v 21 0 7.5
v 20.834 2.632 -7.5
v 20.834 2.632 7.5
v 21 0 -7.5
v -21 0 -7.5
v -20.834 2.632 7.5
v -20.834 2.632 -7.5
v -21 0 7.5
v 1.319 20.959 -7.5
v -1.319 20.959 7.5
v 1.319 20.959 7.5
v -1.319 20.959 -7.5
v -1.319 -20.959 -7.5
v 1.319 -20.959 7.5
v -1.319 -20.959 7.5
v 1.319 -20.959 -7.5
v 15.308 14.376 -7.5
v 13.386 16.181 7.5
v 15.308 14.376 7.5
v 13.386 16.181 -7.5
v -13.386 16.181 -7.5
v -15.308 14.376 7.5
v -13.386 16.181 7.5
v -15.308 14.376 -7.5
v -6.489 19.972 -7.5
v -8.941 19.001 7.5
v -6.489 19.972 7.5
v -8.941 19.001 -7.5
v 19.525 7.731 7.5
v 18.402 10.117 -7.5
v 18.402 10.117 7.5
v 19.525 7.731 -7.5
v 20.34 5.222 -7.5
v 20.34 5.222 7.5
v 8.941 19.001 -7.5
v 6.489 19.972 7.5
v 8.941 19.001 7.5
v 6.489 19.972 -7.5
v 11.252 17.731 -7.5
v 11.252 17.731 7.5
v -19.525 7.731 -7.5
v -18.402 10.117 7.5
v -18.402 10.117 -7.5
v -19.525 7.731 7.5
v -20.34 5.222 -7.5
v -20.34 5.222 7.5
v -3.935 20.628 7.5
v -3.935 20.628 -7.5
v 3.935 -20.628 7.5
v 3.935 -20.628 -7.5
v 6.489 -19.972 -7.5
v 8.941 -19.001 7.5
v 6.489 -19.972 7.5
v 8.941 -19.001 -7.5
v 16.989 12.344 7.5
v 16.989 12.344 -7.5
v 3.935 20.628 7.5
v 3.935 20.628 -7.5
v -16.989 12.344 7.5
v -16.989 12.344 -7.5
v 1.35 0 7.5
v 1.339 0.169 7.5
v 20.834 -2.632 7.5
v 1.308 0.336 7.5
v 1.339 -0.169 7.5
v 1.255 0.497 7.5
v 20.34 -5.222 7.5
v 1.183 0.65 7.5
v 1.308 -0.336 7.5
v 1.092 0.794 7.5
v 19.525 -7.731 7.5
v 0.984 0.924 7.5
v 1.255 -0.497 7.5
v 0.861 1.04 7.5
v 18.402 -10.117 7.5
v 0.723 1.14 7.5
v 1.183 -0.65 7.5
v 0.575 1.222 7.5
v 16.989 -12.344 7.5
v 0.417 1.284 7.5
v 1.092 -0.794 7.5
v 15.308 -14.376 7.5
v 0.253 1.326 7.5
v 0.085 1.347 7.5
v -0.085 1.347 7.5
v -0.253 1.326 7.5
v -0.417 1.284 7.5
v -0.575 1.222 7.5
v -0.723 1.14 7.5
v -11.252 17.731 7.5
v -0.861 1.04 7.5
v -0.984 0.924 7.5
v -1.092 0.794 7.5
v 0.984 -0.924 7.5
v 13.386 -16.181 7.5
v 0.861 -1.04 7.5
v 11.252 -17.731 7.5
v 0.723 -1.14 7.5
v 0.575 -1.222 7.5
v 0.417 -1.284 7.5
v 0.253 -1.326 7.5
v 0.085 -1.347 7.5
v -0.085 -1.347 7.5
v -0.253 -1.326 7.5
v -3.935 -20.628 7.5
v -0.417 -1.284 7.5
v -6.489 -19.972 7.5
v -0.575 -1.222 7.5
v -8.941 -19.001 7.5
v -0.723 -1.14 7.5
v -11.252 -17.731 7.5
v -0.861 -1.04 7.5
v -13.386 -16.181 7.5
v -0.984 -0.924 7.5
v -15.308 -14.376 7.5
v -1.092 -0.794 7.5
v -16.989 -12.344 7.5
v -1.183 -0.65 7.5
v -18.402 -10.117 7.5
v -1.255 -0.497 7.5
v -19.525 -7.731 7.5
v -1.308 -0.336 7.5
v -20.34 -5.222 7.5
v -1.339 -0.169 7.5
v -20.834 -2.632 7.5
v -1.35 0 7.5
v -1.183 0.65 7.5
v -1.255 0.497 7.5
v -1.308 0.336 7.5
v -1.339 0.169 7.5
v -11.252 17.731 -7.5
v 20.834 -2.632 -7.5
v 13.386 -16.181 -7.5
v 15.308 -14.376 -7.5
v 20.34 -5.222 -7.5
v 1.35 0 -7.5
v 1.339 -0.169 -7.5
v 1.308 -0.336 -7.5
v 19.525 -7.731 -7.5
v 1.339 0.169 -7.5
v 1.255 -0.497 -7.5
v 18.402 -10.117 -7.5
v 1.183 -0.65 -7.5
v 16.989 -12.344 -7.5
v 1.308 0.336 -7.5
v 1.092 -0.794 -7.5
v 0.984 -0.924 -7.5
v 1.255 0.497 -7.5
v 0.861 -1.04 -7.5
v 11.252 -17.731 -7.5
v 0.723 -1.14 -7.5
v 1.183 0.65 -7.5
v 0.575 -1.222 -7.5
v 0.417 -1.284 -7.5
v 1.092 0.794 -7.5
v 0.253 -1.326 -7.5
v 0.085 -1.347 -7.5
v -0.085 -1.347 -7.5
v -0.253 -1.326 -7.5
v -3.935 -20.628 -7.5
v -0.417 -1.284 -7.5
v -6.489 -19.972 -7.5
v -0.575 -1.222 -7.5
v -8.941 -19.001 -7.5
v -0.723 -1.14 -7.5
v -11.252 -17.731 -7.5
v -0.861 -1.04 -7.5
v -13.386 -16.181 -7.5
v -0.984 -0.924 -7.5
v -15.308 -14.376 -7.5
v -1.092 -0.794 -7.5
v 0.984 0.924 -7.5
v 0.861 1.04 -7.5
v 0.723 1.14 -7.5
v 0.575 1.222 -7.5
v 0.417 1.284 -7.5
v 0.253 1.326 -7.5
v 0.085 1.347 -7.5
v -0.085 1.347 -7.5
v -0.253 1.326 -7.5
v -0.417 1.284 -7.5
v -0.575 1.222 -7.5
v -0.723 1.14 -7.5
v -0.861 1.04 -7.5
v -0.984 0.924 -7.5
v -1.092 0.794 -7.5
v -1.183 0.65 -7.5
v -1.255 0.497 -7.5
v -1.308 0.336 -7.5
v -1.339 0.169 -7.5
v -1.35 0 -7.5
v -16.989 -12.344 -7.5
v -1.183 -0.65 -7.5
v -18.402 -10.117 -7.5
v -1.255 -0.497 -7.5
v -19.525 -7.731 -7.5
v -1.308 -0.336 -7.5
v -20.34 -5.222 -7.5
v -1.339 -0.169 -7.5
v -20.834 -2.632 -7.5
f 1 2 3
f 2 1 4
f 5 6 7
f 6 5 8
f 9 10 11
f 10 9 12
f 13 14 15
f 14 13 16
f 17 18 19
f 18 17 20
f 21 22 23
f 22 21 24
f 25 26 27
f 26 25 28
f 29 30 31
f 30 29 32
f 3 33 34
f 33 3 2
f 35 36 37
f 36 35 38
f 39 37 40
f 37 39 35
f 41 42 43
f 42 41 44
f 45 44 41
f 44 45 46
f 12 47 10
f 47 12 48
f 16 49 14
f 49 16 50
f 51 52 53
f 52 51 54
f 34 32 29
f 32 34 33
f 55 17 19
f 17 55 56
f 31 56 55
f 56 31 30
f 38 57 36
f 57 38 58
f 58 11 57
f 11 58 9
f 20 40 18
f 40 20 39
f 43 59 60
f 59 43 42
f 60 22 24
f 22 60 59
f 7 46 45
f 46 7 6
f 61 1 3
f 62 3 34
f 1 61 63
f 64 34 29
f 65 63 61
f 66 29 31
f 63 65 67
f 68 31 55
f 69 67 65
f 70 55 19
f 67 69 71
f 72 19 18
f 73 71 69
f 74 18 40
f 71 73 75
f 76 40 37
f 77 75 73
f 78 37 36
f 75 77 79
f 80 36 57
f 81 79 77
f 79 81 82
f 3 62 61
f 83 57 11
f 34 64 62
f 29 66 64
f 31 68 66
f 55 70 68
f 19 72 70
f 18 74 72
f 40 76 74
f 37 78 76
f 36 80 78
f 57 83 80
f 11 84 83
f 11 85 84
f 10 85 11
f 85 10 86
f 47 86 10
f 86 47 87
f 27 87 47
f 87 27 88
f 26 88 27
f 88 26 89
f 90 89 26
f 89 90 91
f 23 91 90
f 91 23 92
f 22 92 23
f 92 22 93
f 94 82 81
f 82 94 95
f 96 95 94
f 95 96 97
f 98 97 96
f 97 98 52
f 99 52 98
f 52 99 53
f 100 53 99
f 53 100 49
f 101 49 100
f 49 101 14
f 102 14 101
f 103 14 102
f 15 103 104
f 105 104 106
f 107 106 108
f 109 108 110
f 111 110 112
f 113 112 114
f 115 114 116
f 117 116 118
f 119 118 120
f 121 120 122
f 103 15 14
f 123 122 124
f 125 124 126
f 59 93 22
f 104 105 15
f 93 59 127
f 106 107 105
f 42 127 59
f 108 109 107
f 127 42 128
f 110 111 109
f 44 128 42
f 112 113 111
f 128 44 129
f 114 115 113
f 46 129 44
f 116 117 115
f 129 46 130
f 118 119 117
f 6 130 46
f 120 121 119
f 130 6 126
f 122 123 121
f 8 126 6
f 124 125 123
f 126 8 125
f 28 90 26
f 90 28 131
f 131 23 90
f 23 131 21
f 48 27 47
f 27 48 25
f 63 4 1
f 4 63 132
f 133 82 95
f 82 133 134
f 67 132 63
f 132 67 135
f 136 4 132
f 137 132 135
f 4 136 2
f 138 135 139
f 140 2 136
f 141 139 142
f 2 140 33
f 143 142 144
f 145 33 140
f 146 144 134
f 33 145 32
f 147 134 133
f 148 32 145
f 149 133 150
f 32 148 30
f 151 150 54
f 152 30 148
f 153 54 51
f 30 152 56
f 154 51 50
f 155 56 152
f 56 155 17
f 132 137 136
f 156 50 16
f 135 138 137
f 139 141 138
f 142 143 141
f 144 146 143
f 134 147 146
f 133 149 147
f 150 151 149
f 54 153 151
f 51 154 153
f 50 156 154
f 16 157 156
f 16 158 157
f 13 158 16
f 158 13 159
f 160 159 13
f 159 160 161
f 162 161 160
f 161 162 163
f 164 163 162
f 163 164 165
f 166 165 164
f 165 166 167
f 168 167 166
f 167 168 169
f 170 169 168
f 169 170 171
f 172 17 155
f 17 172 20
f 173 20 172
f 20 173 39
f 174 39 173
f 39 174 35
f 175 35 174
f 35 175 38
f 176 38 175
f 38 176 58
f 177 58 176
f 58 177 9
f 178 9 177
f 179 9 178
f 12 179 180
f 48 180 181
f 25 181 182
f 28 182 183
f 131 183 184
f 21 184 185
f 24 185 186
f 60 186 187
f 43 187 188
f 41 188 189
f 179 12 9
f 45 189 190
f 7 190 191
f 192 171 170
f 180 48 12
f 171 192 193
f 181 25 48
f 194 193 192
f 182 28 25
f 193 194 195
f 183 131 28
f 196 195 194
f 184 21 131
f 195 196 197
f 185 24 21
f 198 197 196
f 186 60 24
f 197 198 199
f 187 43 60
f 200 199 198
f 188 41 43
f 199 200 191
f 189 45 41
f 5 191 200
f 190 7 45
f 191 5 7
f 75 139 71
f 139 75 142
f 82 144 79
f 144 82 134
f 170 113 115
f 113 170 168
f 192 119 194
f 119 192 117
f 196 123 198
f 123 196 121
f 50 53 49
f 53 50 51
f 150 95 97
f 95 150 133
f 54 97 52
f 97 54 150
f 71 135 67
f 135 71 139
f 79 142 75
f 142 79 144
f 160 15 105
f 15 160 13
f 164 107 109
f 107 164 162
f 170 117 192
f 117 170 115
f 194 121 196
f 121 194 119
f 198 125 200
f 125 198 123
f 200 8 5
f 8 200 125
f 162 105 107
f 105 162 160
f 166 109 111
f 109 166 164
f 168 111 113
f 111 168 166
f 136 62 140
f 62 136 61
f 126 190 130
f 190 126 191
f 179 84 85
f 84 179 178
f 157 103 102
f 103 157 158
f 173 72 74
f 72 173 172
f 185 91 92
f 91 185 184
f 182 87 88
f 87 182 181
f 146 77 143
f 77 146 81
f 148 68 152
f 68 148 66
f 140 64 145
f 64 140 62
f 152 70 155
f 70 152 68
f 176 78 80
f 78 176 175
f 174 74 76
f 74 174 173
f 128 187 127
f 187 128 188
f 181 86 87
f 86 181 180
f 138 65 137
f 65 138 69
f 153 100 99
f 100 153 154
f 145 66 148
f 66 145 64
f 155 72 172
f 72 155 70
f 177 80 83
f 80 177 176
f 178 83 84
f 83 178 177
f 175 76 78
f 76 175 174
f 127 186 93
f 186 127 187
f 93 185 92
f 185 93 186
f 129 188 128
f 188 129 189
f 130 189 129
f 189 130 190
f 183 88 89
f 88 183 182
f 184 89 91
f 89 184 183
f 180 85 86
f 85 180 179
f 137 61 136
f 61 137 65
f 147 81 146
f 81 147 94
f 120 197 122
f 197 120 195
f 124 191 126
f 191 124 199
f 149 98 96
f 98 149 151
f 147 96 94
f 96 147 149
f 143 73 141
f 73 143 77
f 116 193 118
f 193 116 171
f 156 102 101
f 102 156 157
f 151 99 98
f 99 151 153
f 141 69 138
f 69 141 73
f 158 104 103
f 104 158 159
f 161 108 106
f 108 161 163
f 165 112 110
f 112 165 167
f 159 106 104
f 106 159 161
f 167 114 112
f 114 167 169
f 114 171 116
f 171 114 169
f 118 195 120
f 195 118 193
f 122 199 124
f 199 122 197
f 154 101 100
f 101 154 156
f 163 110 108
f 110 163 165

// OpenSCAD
$fn = 50;


difference() {
	union() {
		translate(v = [0, 0, -7.5000000000]) {
			cylinder(h = 15, r = 21.0000000000);
		}
	}
	union() {
		translate(v = [0, 0, -100.0000000000]) {
			cylinder(h = 200, r = 1.3500000000);
		}
	}
}
